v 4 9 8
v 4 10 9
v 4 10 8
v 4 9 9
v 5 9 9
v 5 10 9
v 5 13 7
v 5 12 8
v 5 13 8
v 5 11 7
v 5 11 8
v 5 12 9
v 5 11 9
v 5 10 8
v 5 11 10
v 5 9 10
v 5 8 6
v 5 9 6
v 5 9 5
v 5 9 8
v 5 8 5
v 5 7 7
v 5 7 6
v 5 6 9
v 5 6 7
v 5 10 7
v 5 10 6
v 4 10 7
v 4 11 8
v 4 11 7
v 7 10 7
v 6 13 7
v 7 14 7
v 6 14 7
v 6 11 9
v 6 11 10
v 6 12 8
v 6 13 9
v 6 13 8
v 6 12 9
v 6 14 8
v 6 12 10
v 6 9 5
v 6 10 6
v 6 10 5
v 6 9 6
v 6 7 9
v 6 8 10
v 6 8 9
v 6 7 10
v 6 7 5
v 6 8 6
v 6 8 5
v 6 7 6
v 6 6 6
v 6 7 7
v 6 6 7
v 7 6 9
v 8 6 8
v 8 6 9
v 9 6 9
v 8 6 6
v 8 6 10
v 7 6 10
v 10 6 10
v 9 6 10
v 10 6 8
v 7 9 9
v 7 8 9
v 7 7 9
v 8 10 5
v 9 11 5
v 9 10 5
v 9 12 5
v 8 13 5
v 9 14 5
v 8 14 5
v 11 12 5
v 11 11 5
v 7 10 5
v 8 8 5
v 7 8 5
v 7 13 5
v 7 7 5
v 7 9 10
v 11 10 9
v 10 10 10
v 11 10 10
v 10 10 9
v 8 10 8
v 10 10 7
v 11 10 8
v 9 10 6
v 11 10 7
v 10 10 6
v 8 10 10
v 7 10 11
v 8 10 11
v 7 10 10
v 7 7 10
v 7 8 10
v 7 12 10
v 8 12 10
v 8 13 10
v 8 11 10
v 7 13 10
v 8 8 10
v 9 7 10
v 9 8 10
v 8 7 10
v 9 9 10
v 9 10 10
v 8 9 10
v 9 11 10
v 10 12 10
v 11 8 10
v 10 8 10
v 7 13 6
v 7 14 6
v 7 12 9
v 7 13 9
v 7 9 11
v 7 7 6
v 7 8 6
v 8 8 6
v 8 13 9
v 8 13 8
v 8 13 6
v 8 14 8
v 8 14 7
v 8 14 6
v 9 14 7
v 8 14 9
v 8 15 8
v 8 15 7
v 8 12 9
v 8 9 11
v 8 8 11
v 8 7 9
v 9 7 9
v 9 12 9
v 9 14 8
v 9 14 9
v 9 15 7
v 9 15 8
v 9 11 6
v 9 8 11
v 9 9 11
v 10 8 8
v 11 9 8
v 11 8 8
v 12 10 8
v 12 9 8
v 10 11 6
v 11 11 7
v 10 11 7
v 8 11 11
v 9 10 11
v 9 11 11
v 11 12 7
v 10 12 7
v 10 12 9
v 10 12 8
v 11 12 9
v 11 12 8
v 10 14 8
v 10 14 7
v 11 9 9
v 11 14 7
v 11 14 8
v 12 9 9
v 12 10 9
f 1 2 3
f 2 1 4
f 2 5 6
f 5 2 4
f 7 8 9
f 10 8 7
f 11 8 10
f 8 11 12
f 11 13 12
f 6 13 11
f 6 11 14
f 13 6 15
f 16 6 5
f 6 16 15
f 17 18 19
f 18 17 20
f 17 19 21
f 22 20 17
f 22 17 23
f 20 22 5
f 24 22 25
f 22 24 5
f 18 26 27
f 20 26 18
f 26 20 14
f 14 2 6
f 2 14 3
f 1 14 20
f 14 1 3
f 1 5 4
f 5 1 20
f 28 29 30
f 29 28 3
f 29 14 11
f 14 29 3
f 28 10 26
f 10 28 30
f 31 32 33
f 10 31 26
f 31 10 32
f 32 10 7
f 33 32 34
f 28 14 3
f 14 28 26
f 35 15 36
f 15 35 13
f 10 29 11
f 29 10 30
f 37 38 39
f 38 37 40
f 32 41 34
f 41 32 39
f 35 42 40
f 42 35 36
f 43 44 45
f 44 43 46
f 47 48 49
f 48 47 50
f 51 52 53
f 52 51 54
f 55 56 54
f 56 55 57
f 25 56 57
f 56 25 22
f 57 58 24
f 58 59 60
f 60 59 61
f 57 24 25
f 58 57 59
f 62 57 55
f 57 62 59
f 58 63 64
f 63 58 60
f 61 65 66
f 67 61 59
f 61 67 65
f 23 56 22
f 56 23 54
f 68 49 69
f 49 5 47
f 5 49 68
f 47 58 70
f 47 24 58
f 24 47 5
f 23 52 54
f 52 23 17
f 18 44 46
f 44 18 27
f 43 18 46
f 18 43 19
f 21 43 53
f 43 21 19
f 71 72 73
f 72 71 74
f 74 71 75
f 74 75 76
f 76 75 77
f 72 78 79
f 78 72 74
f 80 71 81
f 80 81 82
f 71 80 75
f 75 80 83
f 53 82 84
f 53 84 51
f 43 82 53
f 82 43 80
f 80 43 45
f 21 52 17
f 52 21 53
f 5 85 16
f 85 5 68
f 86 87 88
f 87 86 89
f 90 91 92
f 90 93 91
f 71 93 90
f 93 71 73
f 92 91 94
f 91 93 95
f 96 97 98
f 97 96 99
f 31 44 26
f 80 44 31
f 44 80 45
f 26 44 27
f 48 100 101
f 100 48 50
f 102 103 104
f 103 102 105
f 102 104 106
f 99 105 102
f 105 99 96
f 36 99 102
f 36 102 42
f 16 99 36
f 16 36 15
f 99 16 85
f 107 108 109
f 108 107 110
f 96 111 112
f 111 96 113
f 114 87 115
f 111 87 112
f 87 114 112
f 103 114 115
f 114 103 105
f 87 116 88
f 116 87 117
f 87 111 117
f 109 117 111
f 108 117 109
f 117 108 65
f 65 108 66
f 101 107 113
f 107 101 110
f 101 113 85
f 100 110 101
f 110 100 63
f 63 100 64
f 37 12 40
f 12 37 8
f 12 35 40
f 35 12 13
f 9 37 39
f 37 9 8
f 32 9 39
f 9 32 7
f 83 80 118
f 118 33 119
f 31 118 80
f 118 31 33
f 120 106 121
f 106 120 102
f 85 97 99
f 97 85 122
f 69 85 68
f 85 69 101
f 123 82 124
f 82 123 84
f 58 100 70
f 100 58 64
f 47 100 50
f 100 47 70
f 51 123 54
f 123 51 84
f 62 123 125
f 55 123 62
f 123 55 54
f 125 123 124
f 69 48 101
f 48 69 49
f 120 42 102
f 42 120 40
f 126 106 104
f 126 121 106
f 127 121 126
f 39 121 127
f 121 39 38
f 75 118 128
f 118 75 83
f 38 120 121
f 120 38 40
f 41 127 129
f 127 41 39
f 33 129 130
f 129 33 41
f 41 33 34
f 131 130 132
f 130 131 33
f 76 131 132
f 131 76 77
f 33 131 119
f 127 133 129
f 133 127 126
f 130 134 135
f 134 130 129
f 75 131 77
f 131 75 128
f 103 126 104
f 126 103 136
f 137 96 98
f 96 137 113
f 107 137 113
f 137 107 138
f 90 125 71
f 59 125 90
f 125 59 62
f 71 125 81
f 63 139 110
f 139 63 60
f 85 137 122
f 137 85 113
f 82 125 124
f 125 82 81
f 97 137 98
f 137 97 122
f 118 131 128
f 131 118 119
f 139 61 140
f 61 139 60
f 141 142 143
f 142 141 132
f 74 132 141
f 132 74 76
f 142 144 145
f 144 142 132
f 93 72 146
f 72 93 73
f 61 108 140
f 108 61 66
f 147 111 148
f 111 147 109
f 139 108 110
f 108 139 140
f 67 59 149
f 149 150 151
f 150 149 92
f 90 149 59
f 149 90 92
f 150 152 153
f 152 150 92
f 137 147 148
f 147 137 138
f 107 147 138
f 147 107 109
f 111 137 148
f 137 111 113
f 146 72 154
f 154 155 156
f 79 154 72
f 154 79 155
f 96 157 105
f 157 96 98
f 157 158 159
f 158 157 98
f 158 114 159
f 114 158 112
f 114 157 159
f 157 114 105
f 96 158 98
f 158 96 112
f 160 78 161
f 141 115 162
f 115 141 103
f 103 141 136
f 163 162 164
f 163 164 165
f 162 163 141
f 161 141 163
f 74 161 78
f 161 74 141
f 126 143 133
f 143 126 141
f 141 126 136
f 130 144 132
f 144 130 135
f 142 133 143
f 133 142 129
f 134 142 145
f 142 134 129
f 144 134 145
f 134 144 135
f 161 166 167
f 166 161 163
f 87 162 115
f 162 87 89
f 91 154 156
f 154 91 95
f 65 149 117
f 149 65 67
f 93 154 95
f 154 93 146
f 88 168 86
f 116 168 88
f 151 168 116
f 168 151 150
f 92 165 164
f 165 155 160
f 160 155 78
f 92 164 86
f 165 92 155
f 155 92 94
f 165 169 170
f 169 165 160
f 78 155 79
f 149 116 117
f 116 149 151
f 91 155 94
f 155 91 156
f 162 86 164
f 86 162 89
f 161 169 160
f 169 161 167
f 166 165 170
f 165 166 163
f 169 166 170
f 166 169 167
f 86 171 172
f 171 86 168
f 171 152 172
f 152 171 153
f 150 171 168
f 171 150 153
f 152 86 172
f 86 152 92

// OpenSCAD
// Create matrix
mr = 	[
[9.922,5.4992,5.7271],
[4.7016,14.364,4.8271],
[1.5708,0,0],
[1.5708,0,0],
[4,9,8],
[4,10,7],
[5,6,7],
[5,6,8],
[5,7,6],
[5,7,7],
[5,7,8],
[5,8,5],
[5,8,6],
[5,8,7],
[5,8,8],
[5,9,6],
[5,9,7],
[5,9,8],
[5,9,9],
[5,10,7],
[5,10,8],
[5,10,9],
[5,11,7],
[5,11,8],
[5,12,7],
[6,6,6],
[6,6,7],
[6,6,8],
[6,7,5],
[6,7,6],
[6,7,7],
[6,7,8],
[6,7,9],
[6,8,5],
[6,8,6],
[6,8,7],
[6,8,8],
[6,9,5],
[6,9,6],
[6,9,7],
[6,9,8],
[6,9,9],
[6,10,7],
[6,10,8],
[6,10,9],
[6,11,7],
[6,11,8],
[6,11,9],
[6,12,7],
[6,12,8],
[6,13,7],
[7,6,6],
[7,6,7],
[7,6,8],
[7,6,9],
[7,7,6],
[7,7,7],
[7,7,8],
[7,7,9],
[7,8,5],
[7,8,6],
[7,8,7],
[7,8,8],
[7,8,9],
[7,9,5],
[7,9,6],
[7,9,7],
[7,9,8],
[7,9,9],
[7,9,10],
[7,10,5],
[7,10,6],
[7,10,7],
[7,10,8],
[7,10,9],
[7,11,5],
[7,11,6],
[7,11,7],
[7,11,8],
[7,11,9],
[7,12,5],
[7,12,6],
[7,12,7],
[7,12,8],
[7,12,9],
[7,13,6],
[7,13,7],
[8,6,8],
[8,7,8],
[8,7,9],
[8,8,8],
[8,8,9],
[8,8,10],
[8,9,8],
[8,9,9],
[8,10,5],
[8,10,6],
[8,10,7],
[8,10,8],
[8,10,9],
[8,10,10],
[8,11,5],
[8,11,6],
[8,11,7],
[8,11,8],
[8,11,9],
[8,12,5],
[8,12,6],
[8,12,7],
[8,12,8],
[8,13,5],
[8,13,6],
[8,13,7],
[8,13,8],
[8,14,7],
[9,6,8],
[9,6,9],
[9,7,8],
[9,7,9],
[9,8,8],
[9,8,9],
[9,9,8],
[9,9,9],
[9,10,6],
[9,10,7],
[9,10,8],
[9,10,9],
[9,11,5],
[9,11,6],
[9,11,7],
[9,11,8],
[9,11,9],
[10,8,8],
[10,8,9],
[10,9,8],
[10,9,9],
[10,10,7],
[10,10,8],
[10,11,5],
[10,11,6],
[10,11,7],
[10,11,8],
[10,12,7],
[10,13,7],
[11,9,8],
		];
// Draw cubes
// Z-axis
for (a =[4:len(mr)-1]){
	color([1,0,0]) translate([mr[a][0], mr[a][1], mr[a][2]])cube([1,1,1]);
			
}
